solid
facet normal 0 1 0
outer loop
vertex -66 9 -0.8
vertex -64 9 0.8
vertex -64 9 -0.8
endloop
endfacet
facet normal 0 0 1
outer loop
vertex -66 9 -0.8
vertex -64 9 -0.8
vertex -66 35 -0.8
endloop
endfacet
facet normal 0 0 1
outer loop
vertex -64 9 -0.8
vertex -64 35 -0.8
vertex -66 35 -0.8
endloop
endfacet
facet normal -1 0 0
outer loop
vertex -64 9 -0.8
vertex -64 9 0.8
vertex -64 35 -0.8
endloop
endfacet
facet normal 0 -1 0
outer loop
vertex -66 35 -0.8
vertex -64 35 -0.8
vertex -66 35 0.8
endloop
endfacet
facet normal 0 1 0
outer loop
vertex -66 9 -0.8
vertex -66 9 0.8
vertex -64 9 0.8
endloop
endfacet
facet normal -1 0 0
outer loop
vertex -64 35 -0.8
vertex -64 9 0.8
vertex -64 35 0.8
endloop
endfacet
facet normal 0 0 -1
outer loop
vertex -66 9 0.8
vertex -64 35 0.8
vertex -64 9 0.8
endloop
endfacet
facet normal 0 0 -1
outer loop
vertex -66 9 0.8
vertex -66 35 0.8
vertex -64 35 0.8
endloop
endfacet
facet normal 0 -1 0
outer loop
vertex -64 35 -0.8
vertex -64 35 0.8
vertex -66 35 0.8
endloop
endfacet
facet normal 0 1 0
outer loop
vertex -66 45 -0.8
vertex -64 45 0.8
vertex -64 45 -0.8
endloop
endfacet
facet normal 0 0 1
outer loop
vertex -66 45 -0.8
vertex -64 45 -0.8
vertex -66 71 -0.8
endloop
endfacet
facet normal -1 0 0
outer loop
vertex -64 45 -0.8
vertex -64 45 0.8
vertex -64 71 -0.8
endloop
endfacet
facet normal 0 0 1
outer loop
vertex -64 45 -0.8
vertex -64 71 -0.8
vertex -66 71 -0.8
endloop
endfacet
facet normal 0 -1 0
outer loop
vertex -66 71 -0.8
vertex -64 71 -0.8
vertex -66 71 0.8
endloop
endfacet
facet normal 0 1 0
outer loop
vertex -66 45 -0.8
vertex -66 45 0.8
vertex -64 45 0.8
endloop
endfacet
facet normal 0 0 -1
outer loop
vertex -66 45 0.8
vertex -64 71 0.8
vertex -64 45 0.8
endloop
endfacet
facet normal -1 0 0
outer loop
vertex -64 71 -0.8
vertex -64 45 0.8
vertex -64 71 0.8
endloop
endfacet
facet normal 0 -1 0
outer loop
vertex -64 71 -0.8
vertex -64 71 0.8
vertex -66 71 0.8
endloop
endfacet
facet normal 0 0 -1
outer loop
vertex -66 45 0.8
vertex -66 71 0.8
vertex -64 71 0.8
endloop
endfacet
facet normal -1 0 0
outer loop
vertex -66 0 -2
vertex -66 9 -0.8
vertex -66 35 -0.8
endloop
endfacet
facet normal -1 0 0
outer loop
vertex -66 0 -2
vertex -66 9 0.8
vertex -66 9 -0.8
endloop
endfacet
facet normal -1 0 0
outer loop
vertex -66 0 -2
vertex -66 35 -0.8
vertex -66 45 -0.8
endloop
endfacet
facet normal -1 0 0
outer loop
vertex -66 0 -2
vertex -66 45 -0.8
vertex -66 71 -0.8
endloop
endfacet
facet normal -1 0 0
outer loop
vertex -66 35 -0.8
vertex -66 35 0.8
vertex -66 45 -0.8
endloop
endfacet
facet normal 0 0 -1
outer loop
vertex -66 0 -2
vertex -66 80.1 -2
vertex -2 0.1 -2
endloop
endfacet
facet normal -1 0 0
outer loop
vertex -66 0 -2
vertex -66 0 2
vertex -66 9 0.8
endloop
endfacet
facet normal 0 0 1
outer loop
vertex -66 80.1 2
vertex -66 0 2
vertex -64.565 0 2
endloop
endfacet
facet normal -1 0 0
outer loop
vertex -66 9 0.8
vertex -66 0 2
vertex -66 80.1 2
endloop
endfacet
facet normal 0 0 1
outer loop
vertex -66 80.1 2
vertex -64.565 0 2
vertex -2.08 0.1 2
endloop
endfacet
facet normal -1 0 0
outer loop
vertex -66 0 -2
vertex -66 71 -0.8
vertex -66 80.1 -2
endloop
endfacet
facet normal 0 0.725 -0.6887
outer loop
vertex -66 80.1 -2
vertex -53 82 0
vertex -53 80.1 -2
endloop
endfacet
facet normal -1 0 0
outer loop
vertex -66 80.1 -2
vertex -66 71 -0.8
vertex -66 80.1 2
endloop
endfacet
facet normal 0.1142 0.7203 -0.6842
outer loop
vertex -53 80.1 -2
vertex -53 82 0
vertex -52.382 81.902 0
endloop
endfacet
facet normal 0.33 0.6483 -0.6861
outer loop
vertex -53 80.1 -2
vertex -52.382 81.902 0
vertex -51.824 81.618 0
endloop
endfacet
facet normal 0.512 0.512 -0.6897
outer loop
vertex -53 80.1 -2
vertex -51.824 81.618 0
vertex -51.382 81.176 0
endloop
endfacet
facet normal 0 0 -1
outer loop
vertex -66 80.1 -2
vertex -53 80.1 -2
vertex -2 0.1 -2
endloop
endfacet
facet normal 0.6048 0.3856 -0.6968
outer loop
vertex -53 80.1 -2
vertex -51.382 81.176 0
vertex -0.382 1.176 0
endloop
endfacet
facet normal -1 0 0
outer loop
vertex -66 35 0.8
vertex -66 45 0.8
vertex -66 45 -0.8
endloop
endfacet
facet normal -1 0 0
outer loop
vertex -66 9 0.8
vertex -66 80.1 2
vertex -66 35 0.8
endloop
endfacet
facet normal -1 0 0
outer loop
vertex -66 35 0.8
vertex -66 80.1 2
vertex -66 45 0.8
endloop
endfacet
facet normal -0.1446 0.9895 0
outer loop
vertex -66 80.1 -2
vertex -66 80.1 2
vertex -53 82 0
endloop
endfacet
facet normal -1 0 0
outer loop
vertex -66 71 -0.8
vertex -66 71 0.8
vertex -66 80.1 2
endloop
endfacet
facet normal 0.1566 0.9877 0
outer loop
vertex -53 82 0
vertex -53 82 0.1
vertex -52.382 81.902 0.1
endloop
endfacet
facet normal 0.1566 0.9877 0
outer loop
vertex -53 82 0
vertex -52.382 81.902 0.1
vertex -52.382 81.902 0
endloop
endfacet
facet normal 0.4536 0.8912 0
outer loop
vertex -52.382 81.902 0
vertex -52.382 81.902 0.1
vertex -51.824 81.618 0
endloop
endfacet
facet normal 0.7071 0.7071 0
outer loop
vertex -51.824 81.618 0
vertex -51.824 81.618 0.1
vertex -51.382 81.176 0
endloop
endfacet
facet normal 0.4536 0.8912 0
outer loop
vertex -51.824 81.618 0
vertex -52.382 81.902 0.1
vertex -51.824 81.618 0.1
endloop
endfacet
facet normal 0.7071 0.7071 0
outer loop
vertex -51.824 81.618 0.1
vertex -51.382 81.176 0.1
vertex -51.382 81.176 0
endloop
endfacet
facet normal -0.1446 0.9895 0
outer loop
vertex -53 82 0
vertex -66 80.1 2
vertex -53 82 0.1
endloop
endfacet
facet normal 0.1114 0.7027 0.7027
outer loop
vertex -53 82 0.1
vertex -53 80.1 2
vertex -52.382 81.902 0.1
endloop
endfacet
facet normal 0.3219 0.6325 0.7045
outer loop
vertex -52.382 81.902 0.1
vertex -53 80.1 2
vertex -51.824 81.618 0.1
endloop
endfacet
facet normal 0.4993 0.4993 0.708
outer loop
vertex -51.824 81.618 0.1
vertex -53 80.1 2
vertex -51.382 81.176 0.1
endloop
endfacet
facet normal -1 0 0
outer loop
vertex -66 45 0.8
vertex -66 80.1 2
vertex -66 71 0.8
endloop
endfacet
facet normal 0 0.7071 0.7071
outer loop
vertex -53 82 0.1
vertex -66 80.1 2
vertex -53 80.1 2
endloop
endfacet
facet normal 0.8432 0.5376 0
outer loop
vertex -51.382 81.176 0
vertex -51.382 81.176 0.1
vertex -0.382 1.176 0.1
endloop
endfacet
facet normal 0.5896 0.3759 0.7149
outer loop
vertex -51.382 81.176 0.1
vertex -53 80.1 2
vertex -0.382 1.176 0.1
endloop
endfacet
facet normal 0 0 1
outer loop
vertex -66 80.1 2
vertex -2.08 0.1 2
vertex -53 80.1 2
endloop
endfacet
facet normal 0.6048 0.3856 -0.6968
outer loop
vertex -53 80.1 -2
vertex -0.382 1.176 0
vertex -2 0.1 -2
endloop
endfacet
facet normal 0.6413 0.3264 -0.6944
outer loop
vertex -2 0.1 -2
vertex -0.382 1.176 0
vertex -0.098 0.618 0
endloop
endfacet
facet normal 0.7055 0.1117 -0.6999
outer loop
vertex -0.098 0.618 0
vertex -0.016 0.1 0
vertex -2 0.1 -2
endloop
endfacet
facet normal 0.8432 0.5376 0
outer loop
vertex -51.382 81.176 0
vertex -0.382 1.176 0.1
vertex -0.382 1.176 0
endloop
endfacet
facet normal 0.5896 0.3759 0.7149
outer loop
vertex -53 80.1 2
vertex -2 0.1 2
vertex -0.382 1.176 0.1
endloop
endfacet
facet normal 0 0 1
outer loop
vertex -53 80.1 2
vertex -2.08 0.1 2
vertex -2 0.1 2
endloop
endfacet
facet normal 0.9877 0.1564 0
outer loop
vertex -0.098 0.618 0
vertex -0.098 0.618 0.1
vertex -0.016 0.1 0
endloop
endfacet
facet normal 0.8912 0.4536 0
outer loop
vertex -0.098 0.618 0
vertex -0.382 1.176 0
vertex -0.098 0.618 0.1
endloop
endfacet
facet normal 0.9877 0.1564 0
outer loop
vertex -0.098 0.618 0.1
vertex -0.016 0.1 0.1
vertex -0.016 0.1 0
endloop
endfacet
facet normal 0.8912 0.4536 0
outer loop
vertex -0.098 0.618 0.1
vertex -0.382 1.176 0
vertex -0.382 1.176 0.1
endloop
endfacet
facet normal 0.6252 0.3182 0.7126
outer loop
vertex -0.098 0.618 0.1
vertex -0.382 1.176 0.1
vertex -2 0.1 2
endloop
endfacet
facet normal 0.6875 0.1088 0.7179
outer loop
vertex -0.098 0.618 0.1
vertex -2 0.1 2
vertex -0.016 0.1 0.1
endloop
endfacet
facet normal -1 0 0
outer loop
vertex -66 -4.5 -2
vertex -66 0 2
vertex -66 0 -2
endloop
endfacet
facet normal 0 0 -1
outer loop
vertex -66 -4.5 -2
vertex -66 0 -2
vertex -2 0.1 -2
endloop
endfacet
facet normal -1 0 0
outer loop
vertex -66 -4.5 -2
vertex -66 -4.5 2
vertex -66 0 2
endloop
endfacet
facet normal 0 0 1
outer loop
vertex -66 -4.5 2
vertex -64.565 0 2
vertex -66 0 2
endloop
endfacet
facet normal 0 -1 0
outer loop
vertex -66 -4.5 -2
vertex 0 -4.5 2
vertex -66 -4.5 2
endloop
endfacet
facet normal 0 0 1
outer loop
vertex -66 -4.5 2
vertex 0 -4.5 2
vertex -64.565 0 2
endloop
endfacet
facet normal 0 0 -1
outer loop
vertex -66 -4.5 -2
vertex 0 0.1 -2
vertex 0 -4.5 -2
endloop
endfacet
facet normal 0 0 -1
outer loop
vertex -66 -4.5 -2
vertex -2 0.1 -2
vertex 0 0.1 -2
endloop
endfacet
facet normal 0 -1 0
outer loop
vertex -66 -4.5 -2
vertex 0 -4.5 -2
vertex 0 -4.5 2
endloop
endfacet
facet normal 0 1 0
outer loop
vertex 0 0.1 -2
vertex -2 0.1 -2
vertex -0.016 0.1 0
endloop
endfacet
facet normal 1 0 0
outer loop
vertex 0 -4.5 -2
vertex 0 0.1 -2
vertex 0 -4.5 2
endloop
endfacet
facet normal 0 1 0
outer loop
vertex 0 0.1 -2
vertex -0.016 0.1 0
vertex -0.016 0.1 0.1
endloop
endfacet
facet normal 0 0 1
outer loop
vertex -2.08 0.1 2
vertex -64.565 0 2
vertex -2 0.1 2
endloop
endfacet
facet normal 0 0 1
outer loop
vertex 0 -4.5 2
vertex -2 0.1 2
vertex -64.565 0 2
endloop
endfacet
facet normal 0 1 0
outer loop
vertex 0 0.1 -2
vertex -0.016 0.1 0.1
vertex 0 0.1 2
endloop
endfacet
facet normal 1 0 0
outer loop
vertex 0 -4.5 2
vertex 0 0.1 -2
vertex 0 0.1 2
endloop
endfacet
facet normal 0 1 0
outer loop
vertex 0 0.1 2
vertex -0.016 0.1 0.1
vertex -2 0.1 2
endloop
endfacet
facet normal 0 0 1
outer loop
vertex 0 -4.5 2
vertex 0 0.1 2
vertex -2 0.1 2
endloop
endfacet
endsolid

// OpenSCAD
// file: design_params.scad
// ============================================================
// STARLING SHARED DESIGN PARAMETERS — single source of truth for
// every dimension two parts must agree on.
//
// Consumers:
//   - every part in cad/ does        include <design_params.scad>
//   - parts in cad/calibration/ do   include <../design_params.scad>
//   - scripts/check_params.py FAILS the build if any of these names
//     is re-declared anywhere else — change values HERE only.
//
// Keep this file to simple `name = value;` lines so the tooling can
// parse it. One-off experiments: `openscad -D name=value` beats the
// include, no need to edit this file.
// ============================================================

// --- The paper tube (bought part, consumable) ---
tube_od     = 52.95;   // measured tube OD — verify with cad/calibration/tube_fit_ring.scad
tube_wall   = 3;       // paper wall thickness (measure your tube)
tube_length = 540;

// --- Printed-part fits ---
sleeve_clearance = 0;  // added to every sleeve bore diameter; tune via the fit ring
fit_tol          = 0.2; // clearance for printed slots/pockets
sleeve_wall      = 3;  // wall thickness of printed sleeves

// --- Wing spar chain (rib holes = adapter sockets = carbon rods) ---
spar_rod_d    = 6;     // carbon rod diameter
spar_hole_d   = 6.2;   // printed hole for that rod
spar_spacing  = 20;    // chordwise distance between the two spars
spar_y_offset = 1.5;   // spar line sits this far above the rib chord line

// --- Wing geometry ---
rib_chord     = 100;
naca_code     = 2415;  // cambered lifting section
rib_thickness = 2;

// --- Wing adapter <-> root rib interface ---
wing_tab_thickness = 11; // adapter tab (socket carrier; ribs sit outboard of it)
wing_tab_span      = 15; // how far the tab reaches out from the sleeve
adapter_length     = 40; // sleeve length = tab chord extent

// --- Stations along the tube (assembly; wing slides for CG trim) ---
wing_station       = 300; // wing adapter position, measured from the motor face
tail_tube_stop     = 54;  // tube bottoms out here inside the tail sleeve (rim top)
nose_sleeve_length = 20;  // how far the nose cone slides over the tube

// --- Servos (9 g / SG90 class) ---
servo_body   = [23, 12.2]; // [length, width]
servo_flange = [32, 12.2];
servo_height = 22;         // body height incl. shaft boss, without horn

// --- Control system (internal servos, wire pushrods through wall slots) ---
ctrl_chord       = 22;   // control-surface chord (elevator / rudder / aileron)
ctrl_thickness   = 4;    // control-surface root thickness = fin thickness
hinge_groove_w   = 1.6;  // groove for the hinge strip/tape, both fin TE and surface LE
hinge_groove_d   = 2.5;
pushrod_d        = 1.2;  // piano-wire pushrod, attached at the TIP of both arms
pushrod_slot_w   = 2.5;  // wall slot the pushrod moves in
pushrod_slot_len = 18;   // slot channel length along the rod (see throw_check.py)
servo_horn_r     = 10;   // full arm length — the wire connects at the far end
servo_travel_deg = 45;   // used one-sided travel; the arm can do ~±90 (180 total)
                         // but the linkage stays near-linear only within ±45
ctrl_horn_r      = 10;   // control-surface horn = servo horn -> 1:1 linkage

// Tail linkage geometry. Three 22 mm-wide servos cannot share one height
// inside the Ø53 bore (corner collisions), so they are STAGGERED in Z:
// the two elevator servos sit HIGH (opposite sides, they coexist), the
// rudder servo sits LOW. Each wire attaches at the arm tip and exits
// through an angled wall slot raked toward its surface horn.
tail_servo_z           = 33; // bottom (shaft end) of the ELEVATOR servo bodies
tail_slot_angle        = 42; // elevator rod angle off the fuselage axis
tail_rudder_z          = 9;  // bottom (shaft end) of the RUDDER servo body
tail_rudder_slot_angle = 56; // rudder rod angle off the fuselage axis

// --- Motor (22xx class, rear pusher) ---
motor_shaft_hole_d = 10;
motor_screw_hole_d = 4;
motor_pattern_x    = 16;  // screw pattern
motor_pattern_y    = 19;
// main file
// VERTICAL TAIL FIN — print ONE, FLAT on the bed: no supports, layer lines
// along the span. The root tab glues into the tail sleeve's top fin socket;
// the TE groove takes the rudder hinge strip. Geometry lives in tail.scad.

use <tail.scad>

$fn = 60;
fin_vertical_part();
